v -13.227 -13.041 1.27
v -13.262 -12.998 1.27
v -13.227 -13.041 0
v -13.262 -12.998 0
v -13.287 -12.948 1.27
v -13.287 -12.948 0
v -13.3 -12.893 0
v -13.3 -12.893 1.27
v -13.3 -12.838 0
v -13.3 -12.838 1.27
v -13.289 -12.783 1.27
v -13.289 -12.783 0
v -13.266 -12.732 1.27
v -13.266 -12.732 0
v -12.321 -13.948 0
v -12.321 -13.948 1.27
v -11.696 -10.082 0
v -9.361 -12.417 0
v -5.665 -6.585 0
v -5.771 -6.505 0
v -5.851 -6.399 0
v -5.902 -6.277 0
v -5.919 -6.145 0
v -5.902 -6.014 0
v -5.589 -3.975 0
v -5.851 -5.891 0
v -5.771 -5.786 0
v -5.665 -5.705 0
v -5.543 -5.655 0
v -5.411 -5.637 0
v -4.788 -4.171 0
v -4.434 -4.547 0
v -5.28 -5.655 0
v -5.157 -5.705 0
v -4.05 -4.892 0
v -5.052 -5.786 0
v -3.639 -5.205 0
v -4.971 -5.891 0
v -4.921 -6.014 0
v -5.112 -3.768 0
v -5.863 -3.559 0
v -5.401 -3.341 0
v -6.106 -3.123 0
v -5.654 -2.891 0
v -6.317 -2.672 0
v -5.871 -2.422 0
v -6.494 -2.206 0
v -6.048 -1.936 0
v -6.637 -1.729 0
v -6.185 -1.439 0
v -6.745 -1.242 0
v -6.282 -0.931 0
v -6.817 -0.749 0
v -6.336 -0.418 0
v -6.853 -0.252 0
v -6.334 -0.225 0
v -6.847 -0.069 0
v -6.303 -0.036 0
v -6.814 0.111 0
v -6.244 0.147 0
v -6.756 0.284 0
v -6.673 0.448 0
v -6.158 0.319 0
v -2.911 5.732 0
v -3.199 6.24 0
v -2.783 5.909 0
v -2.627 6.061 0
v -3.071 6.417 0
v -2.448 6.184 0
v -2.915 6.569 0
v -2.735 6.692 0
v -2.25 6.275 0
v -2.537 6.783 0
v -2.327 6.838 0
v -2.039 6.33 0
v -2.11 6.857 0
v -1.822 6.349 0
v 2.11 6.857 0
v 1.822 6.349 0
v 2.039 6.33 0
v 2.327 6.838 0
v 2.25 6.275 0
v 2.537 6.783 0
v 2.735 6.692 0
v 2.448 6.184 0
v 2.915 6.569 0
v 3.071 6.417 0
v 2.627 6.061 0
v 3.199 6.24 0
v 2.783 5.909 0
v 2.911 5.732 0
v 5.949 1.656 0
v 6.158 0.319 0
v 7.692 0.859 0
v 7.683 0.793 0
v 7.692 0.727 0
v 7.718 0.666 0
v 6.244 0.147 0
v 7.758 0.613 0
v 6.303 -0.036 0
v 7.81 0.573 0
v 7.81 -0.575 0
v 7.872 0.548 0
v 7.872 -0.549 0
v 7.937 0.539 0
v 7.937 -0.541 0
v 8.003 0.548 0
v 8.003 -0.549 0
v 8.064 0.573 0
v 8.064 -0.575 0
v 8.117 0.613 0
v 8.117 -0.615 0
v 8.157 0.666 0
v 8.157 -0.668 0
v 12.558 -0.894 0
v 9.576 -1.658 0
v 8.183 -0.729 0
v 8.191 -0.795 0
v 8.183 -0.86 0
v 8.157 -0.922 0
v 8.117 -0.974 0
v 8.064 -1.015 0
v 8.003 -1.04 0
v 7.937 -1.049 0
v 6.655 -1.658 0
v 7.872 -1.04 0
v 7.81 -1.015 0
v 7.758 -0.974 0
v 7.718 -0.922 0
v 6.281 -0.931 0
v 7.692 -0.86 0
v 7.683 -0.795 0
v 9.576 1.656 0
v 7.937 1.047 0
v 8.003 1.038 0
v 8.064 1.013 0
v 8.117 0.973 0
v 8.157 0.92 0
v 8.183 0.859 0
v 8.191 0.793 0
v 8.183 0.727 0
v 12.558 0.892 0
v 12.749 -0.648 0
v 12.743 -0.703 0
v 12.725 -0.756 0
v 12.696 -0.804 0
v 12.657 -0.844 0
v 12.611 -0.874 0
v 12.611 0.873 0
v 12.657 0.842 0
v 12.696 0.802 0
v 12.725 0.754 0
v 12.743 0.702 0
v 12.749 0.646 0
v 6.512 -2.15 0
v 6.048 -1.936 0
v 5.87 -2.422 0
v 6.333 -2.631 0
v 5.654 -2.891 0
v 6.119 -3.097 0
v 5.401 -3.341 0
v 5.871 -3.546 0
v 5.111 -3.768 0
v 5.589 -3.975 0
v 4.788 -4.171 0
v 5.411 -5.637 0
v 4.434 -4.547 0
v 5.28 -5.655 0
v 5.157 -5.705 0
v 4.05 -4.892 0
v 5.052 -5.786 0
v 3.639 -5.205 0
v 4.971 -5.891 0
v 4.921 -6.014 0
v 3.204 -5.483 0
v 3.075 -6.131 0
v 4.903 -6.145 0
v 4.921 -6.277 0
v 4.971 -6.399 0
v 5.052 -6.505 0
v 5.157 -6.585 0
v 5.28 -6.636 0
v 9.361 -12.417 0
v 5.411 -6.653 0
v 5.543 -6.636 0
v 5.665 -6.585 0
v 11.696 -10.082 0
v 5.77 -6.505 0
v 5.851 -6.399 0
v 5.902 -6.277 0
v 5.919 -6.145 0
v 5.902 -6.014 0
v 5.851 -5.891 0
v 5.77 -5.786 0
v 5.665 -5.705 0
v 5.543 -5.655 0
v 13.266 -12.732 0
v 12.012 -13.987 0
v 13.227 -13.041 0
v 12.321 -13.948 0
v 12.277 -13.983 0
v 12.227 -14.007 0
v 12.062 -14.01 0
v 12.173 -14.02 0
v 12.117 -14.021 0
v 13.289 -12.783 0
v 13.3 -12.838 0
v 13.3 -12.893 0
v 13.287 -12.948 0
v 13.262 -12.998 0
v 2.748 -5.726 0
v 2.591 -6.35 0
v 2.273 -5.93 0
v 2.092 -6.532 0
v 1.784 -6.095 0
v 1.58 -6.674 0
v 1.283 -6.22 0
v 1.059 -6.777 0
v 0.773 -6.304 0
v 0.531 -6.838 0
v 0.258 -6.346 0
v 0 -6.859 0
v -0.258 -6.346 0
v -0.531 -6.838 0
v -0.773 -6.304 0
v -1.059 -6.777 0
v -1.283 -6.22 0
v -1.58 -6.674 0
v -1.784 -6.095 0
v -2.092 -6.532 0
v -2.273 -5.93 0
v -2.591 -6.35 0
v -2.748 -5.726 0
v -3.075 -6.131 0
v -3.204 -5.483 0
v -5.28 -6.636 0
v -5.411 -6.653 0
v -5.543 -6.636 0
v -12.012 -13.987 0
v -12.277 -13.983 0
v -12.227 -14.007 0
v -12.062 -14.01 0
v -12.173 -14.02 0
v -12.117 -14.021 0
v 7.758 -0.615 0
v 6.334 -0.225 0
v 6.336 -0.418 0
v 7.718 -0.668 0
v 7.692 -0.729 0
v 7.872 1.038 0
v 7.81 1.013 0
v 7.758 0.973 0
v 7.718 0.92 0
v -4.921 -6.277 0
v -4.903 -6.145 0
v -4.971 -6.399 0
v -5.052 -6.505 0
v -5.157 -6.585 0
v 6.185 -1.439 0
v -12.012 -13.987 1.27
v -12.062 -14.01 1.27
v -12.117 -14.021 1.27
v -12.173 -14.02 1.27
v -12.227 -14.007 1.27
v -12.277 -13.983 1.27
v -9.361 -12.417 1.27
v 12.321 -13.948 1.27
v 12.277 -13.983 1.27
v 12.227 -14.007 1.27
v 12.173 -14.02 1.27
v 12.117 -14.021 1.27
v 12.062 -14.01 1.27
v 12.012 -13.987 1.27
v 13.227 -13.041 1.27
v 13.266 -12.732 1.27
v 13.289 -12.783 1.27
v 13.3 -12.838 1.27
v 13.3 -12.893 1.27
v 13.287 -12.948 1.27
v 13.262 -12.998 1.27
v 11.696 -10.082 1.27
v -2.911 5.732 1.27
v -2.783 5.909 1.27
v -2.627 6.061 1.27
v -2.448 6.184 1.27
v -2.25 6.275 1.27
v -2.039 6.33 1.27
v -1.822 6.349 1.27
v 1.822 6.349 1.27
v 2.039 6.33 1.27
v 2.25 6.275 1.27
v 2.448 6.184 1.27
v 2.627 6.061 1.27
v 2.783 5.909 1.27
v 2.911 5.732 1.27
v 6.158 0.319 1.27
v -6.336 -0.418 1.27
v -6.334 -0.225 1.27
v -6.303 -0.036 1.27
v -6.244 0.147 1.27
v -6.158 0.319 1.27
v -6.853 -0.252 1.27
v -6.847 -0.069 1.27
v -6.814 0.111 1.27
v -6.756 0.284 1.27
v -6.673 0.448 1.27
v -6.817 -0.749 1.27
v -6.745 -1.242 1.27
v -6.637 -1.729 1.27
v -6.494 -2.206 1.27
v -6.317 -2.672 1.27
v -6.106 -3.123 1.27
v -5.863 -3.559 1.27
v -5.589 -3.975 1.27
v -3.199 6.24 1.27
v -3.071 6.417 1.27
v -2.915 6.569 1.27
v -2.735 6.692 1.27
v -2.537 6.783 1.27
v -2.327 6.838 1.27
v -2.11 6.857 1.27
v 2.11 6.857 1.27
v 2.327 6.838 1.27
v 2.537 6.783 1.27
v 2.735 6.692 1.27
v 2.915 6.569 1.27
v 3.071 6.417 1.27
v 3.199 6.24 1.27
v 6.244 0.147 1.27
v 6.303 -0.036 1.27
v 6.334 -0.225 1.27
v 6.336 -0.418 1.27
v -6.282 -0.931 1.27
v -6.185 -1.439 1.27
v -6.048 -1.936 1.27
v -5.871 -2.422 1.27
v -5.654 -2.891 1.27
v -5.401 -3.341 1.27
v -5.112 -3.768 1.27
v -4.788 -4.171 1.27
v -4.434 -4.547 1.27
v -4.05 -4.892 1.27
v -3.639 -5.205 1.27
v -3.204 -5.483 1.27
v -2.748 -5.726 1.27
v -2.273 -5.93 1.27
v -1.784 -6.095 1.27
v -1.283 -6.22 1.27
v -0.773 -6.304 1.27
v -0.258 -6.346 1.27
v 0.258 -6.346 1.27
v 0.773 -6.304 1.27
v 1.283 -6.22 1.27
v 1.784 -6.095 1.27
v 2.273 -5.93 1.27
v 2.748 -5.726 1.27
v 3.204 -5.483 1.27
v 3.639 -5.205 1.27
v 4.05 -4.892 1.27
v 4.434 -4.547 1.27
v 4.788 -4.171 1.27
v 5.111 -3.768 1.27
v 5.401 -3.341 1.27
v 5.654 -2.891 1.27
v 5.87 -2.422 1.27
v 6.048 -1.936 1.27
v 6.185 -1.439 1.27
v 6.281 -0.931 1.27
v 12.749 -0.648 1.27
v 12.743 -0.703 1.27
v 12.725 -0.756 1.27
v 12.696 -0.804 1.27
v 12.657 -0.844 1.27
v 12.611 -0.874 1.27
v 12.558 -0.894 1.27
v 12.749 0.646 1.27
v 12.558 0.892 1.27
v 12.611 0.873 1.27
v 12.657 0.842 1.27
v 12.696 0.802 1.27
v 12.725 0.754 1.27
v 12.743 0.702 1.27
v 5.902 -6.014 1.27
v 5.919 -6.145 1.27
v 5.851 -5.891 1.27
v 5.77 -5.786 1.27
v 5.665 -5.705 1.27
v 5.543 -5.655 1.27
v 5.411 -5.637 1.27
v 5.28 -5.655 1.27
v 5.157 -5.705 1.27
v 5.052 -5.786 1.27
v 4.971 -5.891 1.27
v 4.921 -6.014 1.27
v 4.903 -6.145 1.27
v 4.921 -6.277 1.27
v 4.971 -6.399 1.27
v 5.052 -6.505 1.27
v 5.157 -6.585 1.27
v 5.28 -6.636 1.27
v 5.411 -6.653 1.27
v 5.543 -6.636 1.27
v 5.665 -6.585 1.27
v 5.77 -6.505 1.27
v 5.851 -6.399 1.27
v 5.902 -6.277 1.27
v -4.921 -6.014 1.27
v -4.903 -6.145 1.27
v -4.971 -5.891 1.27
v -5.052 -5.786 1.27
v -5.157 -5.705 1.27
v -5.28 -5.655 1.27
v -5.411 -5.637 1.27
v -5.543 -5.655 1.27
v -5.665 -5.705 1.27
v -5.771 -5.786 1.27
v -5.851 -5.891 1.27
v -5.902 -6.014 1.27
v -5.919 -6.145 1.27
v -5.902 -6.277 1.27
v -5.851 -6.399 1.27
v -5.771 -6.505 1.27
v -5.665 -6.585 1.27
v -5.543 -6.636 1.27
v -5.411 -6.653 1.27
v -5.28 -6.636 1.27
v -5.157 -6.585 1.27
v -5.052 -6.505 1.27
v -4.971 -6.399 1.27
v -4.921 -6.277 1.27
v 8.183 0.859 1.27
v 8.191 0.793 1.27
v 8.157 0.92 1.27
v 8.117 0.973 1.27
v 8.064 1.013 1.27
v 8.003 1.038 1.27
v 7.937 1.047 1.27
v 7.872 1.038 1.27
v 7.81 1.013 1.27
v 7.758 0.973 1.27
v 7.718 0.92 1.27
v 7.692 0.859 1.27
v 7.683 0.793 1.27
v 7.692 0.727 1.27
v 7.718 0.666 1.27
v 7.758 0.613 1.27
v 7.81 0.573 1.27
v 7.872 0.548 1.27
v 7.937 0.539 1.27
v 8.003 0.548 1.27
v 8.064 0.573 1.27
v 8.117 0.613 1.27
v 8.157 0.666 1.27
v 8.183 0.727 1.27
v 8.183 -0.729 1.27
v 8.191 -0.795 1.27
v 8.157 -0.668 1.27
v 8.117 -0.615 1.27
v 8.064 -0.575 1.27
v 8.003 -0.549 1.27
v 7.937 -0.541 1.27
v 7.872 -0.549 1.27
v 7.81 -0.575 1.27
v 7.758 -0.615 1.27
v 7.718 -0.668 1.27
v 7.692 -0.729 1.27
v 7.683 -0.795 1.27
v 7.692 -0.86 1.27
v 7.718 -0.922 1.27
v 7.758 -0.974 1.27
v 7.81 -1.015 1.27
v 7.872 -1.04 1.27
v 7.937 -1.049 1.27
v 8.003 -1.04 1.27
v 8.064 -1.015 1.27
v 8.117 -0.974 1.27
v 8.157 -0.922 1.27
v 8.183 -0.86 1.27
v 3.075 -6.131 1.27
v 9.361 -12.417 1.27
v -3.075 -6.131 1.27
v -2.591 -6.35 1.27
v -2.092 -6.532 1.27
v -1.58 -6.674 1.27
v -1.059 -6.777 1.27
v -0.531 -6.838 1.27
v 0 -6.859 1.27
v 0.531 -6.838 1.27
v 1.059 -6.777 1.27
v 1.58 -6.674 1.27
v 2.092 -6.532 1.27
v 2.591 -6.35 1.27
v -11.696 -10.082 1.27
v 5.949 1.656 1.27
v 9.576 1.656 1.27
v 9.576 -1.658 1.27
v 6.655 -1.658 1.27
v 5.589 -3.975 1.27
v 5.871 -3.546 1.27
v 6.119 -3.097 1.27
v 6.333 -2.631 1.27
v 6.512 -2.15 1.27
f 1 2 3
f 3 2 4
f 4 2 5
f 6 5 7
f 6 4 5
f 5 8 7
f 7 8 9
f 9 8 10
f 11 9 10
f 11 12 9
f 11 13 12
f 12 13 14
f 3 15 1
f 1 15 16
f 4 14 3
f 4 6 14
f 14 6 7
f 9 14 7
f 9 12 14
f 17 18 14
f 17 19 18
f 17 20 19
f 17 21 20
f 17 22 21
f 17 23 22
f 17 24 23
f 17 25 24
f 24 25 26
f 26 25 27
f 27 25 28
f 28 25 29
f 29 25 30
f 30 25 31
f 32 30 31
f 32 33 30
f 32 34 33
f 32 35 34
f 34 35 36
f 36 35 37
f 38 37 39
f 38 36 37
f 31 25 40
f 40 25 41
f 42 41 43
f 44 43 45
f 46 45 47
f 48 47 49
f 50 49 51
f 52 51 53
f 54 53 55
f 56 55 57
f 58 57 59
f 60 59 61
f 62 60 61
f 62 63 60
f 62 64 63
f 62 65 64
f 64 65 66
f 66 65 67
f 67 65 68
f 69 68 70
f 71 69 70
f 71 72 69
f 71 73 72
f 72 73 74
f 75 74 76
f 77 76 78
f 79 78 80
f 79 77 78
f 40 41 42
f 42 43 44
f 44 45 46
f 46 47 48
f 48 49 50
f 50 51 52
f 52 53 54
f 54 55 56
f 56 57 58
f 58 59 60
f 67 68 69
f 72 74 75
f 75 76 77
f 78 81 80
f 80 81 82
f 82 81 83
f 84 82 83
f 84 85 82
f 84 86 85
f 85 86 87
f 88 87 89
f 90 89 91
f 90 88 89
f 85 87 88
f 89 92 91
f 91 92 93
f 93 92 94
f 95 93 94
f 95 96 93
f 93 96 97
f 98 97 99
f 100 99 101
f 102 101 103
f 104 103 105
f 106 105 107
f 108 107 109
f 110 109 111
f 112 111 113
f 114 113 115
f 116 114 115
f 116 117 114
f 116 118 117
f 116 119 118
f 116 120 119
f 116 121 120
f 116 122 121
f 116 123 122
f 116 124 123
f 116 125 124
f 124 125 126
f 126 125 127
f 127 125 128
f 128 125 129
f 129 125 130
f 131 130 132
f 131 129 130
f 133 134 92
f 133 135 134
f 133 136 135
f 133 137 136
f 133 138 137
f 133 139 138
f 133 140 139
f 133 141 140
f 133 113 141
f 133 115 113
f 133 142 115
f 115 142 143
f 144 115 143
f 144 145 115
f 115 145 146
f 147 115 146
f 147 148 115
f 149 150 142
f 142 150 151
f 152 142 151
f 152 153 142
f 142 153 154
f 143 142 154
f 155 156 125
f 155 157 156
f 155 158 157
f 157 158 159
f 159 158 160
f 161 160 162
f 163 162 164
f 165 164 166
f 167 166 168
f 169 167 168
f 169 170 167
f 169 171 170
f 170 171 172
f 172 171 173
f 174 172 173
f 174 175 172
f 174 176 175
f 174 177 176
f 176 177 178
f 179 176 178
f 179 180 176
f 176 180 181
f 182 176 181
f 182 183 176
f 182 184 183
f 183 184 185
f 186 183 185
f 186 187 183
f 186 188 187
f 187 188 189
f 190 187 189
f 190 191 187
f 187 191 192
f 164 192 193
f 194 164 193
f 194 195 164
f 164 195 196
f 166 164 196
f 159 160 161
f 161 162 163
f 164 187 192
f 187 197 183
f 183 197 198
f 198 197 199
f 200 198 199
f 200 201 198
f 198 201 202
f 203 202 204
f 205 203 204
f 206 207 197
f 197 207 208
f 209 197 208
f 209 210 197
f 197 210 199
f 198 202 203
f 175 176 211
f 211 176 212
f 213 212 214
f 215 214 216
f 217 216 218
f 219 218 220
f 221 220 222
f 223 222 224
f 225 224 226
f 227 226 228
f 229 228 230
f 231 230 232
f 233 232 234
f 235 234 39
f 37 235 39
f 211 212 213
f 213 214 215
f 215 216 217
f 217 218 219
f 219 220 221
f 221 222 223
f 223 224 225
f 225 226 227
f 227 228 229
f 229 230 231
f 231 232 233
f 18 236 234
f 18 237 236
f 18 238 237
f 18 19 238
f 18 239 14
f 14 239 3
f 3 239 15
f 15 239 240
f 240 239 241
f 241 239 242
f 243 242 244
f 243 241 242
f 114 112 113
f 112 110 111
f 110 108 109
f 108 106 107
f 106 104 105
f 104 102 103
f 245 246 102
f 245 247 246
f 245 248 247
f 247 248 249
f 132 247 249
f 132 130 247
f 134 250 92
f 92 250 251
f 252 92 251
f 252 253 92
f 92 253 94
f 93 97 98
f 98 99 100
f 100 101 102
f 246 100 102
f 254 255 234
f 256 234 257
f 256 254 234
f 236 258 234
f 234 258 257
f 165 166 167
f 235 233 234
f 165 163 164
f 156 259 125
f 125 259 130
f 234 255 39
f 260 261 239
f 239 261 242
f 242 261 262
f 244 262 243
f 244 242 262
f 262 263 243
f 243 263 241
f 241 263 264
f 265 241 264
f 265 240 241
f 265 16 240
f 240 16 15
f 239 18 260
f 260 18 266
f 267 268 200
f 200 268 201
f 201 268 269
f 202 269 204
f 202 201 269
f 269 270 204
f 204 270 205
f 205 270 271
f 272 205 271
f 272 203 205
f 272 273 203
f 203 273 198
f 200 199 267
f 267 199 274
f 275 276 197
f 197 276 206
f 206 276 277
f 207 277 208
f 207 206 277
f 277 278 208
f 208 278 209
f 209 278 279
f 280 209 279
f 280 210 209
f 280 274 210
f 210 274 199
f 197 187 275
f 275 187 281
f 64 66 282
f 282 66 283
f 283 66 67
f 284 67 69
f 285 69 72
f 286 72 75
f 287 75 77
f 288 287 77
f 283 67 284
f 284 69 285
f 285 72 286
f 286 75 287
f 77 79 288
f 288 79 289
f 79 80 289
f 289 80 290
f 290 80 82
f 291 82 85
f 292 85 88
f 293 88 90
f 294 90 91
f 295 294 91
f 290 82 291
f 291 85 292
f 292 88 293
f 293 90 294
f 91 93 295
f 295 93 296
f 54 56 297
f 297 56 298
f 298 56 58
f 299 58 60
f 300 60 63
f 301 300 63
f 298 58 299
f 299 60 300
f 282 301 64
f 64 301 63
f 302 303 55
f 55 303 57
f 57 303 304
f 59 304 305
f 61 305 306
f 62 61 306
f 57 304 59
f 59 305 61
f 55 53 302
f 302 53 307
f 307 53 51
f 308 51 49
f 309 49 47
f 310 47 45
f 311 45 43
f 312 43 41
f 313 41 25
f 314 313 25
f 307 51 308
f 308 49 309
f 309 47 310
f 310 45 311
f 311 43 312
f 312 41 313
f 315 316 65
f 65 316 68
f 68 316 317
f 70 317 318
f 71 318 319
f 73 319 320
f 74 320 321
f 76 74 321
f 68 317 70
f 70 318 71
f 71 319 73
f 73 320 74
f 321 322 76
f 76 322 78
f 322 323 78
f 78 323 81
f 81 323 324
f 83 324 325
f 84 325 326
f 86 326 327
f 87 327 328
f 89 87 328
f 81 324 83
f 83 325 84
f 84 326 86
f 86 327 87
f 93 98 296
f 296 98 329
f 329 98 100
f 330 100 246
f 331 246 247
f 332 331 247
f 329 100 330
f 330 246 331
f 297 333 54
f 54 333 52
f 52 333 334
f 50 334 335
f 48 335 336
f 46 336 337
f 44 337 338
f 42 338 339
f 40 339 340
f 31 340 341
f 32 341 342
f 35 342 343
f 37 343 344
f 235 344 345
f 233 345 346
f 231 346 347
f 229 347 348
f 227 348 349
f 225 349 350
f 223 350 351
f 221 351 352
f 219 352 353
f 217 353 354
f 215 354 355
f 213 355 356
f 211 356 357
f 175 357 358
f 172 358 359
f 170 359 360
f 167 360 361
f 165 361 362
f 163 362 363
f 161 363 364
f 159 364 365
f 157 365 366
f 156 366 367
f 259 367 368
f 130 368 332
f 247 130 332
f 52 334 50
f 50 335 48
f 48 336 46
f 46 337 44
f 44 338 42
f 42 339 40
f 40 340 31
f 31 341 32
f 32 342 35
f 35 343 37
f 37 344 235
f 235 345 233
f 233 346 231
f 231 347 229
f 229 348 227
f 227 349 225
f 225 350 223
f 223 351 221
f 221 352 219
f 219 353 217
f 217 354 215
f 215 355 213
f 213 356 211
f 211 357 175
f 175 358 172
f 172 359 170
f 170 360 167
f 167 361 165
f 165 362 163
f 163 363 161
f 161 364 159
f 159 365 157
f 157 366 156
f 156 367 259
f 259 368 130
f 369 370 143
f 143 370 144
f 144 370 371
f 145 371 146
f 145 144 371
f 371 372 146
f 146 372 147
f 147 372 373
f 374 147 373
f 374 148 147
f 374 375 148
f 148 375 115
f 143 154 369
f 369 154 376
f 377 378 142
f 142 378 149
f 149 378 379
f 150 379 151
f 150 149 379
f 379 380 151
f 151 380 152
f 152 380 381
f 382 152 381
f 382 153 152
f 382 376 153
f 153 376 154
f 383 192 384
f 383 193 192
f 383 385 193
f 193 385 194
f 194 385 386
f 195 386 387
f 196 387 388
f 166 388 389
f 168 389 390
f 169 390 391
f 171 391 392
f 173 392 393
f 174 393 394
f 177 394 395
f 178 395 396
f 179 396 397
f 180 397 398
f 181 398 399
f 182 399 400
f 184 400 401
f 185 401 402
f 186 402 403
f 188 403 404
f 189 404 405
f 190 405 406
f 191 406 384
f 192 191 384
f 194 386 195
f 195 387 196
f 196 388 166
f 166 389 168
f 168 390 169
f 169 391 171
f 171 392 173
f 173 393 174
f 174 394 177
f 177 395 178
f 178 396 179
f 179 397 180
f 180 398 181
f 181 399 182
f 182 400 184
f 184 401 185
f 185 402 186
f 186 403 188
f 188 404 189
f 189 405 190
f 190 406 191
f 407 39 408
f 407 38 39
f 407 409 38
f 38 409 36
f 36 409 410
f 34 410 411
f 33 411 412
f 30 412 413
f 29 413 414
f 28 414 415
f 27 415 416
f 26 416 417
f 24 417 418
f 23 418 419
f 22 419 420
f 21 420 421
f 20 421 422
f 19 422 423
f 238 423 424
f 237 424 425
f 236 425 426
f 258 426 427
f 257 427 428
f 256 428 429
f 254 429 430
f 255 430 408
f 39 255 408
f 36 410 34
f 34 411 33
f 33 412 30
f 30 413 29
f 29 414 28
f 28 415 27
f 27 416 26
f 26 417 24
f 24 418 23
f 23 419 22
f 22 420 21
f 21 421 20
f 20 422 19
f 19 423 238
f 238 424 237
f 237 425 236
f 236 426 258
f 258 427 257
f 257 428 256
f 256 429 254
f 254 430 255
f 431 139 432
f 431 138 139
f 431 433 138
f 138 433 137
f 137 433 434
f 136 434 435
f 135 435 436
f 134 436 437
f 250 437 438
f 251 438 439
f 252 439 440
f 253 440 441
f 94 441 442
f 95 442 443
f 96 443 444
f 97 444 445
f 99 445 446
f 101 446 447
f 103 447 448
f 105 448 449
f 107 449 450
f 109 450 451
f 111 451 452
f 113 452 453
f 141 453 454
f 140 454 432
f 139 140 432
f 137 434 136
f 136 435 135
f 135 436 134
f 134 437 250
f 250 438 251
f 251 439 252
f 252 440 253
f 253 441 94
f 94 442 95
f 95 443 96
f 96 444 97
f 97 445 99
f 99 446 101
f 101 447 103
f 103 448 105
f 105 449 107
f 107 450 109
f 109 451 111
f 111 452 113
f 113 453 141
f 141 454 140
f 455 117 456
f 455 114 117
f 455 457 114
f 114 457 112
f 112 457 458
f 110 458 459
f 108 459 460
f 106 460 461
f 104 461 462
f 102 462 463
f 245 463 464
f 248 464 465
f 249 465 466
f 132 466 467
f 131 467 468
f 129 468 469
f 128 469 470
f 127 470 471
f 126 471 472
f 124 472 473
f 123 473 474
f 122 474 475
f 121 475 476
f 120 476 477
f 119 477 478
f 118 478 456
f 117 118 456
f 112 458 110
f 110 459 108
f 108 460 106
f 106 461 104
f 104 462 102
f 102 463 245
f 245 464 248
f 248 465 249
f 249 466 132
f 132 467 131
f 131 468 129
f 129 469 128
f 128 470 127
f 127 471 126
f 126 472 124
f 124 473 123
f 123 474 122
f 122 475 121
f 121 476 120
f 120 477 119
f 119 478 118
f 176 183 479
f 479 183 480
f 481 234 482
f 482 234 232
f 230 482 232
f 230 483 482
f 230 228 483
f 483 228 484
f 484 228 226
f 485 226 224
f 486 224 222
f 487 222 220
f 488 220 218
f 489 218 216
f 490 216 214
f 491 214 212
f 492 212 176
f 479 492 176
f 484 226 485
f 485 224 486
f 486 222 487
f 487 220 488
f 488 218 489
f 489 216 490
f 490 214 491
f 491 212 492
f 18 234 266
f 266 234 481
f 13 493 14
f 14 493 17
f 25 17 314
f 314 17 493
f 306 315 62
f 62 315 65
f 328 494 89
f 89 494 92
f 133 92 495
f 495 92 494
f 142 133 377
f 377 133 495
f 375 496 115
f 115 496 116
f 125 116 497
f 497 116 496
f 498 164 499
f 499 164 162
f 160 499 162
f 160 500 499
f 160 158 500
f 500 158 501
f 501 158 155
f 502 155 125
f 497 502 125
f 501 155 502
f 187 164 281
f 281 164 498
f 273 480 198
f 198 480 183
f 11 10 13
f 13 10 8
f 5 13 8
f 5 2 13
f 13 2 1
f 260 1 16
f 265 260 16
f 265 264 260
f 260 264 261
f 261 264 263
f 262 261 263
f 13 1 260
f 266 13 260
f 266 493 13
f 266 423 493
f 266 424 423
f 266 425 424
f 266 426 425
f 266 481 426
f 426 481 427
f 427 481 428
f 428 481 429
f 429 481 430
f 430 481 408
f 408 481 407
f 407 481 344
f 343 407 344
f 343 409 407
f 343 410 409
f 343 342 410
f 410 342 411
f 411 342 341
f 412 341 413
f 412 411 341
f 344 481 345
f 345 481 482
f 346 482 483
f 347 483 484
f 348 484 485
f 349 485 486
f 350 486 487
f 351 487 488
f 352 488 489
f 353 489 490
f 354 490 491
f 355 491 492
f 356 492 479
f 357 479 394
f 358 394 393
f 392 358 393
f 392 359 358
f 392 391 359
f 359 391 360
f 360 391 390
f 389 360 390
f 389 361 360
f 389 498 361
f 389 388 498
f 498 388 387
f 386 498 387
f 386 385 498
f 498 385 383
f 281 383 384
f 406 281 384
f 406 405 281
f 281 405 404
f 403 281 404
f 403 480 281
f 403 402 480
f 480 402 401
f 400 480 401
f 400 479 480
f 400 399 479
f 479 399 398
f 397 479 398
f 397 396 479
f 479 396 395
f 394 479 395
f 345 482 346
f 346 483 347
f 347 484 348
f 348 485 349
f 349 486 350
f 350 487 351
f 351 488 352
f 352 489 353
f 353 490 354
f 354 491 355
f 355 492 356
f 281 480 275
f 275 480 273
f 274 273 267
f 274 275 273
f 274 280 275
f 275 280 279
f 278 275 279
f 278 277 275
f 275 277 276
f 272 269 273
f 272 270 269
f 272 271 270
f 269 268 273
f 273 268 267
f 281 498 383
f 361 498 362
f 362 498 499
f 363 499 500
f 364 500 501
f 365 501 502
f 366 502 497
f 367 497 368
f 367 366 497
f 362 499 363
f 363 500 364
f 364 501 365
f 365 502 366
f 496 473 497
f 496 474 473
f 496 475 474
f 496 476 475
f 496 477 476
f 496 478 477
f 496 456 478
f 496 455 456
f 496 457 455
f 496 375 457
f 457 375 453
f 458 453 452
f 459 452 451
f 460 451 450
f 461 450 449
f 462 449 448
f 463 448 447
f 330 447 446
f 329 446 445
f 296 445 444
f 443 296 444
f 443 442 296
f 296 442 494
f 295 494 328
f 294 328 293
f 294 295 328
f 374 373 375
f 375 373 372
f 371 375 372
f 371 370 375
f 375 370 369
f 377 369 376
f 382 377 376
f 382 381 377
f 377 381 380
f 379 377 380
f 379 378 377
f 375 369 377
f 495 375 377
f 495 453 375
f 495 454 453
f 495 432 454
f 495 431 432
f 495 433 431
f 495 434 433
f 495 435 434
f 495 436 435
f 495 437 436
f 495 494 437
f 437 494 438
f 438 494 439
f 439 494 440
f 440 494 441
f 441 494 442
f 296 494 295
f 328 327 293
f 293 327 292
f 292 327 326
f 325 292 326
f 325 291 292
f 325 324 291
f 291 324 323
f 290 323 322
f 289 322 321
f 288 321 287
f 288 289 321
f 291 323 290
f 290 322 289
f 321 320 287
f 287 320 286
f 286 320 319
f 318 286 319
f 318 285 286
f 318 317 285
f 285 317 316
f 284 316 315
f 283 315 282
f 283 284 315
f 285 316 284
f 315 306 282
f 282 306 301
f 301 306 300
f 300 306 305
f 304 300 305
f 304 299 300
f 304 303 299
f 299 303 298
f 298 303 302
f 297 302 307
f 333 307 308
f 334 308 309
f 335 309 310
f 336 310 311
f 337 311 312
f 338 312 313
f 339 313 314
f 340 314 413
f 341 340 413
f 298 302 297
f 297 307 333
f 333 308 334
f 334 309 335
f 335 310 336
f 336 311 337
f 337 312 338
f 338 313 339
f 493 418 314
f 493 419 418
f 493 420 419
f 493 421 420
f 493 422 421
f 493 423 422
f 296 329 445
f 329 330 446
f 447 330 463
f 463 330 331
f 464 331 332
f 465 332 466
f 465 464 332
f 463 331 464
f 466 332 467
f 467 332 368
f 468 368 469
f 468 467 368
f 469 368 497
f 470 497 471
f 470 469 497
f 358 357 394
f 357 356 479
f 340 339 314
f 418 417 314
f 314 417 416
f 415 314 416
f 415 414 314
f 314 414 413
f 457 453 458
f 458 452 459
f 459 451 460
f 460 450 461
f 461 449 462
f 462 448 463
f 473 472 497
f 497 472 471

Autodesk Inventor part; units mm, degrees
ref_plane "YZ Plane" through (0, 0, 0) normal (1, 0, 0) x (0, 1, 0)
ref_plane "XZ Plane" through (0, 0, 0) normal (0, 1, 0) x (-1, 0, 0)
ref_plane "XY Plane" through (0, 0, 0) normal (0, 0, 1) x (1, 0, 0)
sketch "Sketch1" plane through (0, 0, 0) normal (0, 0, 1) x (1, 0, 0)
  line L0 (0, 9.6891) -> (0, -0.0008) construction
  arc A0 (-6.35, -0.0008) -> (6.35, -0.0008) centre (0, -0.0008) ccw
  line L1 (9.3613, -12.4169) -> (3.0751, -6.1307)
  line L2 (5.5891, -3.975) -> (11.6964, -10.0822)
  line L3 (9.3613, -12.4169) -> (12.1811, -14.0872)
  line L4 (12.1811, -14.0872) -> (13.3665, -12.9018)
  line L5 (13.3665, -12.9018) -> (11.6964, -10.0822)
  line L6 (19.3321, -0.0008) -> (-6.0679, -0.0008) construction
  arc A1 (-3.0752, -6.1307) -> (3.0751, -6.1307) centre (0, -0.0008) ccw
  arc A2 (0.9808, -6.7883) -> (3.0751, -6.1307) centre (0, -0.0008) ccw
  arc A3 (-6.8102, -0.809) -> (-5.5892, -3.975) centre (0, -0.0008) ccw
  arc A4 (5.5891, -3.975) -> (6.6548, -1.6576) centre (0, -0.0008) ccw
  arc A5 (5.5891, -3.975) -> (6.6548, -1.6576) centre (0, -0.0008) ccw
  line L7 (5.5891, -3.975) -> (21.5654, -3.975) construction
  line L8 (-9.3614, -12.4169) -> (-3.0752, -6.1307)
  line L9 (-5.5892, -3.975) -> (-11.6964, -10.0822)
  line L10 (-9.3614, -12.4169) -> (-12.1812, -14.0872)
  line L11 (-12.1812, -14.0872) -> (-13.3666, -12.9018)
  line L12 (-13.3666, -12.9018) -> (-11.6964, -10.0822)
  line L13 (9.5758, 1.6559) -> (12.7495, 0.8434)
  line L14 (6.6548, 1.6559) -> (9.5758, 1.6559)
  line L15 (9.5758, -1.6576) -> (12.7495, -0.8451)
  line L16 (6.6548, -1.6576) -> (9.5758, -1.6576)
  circle A6 centre (7.9375, -0.7946) radius 0.254
  circle A7 centre (7.9375, 0.7929) radius 0.254
  circle A8 centre (-5.4113, -6.1454) radius 0.508
  line L17 (12.7495, 0.8434) -> (12.7495, -0.8451)
  circle A9 centre (5.4113, -6.1454) radius 0.508
  line L18 (-2.5412, 6.3492) -> (2.5411, 6.3492)
  line L19 (2.5411, 6.3492) -> (6.35, -0.0008)
  line L20 (5.9486, 1.6559) -> (6.6548, 1.6559)
  line L21 (5.9486, 1.6559) -> (2.8288, 6.8572)
  line L22 (2.8288, 6.8572) -> (-2.8289, 6.8572)
  arc A10 (-6.8565, 0.1423) -> (-5.5892, -3.975) centre (0, -0.0008) ccw
  line L23 (0, 6.3492) -> (-2.5412, 6.3492)
  line L24 (-2.5412, 6.3492) -> (-6.35, -0.0008)
  line L25 (-6.8565, 0.1423) -> (-2.8289, 6.8572)
  line L26 (-2.8289, 6.8572) -> (0, 6.8572)
  point P0 (13.4194, -0.6736)
  point P1 (13.4673, -0.0008)
  point P2 (0, 7.922)
  dimension "GapSize" = 3.048
  dimension "d35" = 12.7
  dimension "d72" = 8.89
  dimension "d73" = 3.2774
  dimension "d77" = 194.36
  dimension "d78" = 1.6764
  dimension "d115" = 90
  dimension "d127" = 0.508
  dimension "d128" = 165.64
  dimension "d154" = 3.302
  dimension "d160" = 3.276
  dimension "d166" = 0.508
  dimension "d168" = 7.9375
  dimension "d169" = 0.863
  dimension "d176" = 1.016
  dimension "d182" = 3.3135
  dimension "d184" = 1.6885
  dimension "d191" = 2.921
  dimension "d234" = 24.3623
  dimension "d238" = 0.508
  dimension "d239" = 0.508
  dimension "d240" = 0.508
  dimension "d241" = 25.4
  dimension "d242" = 0.508
extrude "Extrusion9" add sketch "Sketch1" along normal blind 1.27
fillet "Fillet67" radius 0.254 1 edges at (12.7495, 0.8434, 0.635)
fillet "Fillet68" radius 0.254 1 edges at (12.7495, -0.8451, 0.635)
fillet "Fillet69" radius 1.27 1 edges at (6.35, -0.0008, 0.635)
fillet "Fillet70" radius 1.27 1 edges at (2.8288, 6.8572, 0.635)
fillet "Fillet71" radius 1.27 1 edges at (-2.8289, 6.8572, 0.635)
fillet "Fillet72" radius 1.27 1 edges at (-6.8565, 0.1423, 0.635)
fillet "Fillet73" radius 1.27 1 edges at (-6.35, -0.0008, 0.635)
fillet "Fillet74" radius 1.27 1 edges at (2.5411, 6.3492, 0.635)
fillet "Fillet75" radius 1.27 1 edges at (-2.5412, 6.3492, 0.635)
fillet "Fillet76" radius 0.254 1 edges at (13.3665, -12.9018, 0.635)
fillet "Fillet77" radius 0.254 1 edges at (12.1811, -14.0872, 0.635)
fillet "Fillet78" radius 0.254 1 edges at (-12.1812, -14.0872, 0.635)
fillet "Fillet79" radius 0.254 1 edges at (-13.3666, -12.9018, 0.635)
equation "\"GapSize\" = Thickness"
equation "\"BendRadius\" = Thickness"
equation "\"BendReliefWidth\" = Thickness"
equation "\"BendReliefDepth\" = 0.5 * Thickness"
equation "\"CornerReliefSize\" = 4 * Thickness"
equation "\"MinimumRemnant\" = 2 * Thickness"
equation "\"TransitionRadius\" = BendRadius"
equation "\"JacobiRadiusSize\" = BendRadius"
equation "\"Thickness\" = 3.048"
properties part number "PearHeadbar"
